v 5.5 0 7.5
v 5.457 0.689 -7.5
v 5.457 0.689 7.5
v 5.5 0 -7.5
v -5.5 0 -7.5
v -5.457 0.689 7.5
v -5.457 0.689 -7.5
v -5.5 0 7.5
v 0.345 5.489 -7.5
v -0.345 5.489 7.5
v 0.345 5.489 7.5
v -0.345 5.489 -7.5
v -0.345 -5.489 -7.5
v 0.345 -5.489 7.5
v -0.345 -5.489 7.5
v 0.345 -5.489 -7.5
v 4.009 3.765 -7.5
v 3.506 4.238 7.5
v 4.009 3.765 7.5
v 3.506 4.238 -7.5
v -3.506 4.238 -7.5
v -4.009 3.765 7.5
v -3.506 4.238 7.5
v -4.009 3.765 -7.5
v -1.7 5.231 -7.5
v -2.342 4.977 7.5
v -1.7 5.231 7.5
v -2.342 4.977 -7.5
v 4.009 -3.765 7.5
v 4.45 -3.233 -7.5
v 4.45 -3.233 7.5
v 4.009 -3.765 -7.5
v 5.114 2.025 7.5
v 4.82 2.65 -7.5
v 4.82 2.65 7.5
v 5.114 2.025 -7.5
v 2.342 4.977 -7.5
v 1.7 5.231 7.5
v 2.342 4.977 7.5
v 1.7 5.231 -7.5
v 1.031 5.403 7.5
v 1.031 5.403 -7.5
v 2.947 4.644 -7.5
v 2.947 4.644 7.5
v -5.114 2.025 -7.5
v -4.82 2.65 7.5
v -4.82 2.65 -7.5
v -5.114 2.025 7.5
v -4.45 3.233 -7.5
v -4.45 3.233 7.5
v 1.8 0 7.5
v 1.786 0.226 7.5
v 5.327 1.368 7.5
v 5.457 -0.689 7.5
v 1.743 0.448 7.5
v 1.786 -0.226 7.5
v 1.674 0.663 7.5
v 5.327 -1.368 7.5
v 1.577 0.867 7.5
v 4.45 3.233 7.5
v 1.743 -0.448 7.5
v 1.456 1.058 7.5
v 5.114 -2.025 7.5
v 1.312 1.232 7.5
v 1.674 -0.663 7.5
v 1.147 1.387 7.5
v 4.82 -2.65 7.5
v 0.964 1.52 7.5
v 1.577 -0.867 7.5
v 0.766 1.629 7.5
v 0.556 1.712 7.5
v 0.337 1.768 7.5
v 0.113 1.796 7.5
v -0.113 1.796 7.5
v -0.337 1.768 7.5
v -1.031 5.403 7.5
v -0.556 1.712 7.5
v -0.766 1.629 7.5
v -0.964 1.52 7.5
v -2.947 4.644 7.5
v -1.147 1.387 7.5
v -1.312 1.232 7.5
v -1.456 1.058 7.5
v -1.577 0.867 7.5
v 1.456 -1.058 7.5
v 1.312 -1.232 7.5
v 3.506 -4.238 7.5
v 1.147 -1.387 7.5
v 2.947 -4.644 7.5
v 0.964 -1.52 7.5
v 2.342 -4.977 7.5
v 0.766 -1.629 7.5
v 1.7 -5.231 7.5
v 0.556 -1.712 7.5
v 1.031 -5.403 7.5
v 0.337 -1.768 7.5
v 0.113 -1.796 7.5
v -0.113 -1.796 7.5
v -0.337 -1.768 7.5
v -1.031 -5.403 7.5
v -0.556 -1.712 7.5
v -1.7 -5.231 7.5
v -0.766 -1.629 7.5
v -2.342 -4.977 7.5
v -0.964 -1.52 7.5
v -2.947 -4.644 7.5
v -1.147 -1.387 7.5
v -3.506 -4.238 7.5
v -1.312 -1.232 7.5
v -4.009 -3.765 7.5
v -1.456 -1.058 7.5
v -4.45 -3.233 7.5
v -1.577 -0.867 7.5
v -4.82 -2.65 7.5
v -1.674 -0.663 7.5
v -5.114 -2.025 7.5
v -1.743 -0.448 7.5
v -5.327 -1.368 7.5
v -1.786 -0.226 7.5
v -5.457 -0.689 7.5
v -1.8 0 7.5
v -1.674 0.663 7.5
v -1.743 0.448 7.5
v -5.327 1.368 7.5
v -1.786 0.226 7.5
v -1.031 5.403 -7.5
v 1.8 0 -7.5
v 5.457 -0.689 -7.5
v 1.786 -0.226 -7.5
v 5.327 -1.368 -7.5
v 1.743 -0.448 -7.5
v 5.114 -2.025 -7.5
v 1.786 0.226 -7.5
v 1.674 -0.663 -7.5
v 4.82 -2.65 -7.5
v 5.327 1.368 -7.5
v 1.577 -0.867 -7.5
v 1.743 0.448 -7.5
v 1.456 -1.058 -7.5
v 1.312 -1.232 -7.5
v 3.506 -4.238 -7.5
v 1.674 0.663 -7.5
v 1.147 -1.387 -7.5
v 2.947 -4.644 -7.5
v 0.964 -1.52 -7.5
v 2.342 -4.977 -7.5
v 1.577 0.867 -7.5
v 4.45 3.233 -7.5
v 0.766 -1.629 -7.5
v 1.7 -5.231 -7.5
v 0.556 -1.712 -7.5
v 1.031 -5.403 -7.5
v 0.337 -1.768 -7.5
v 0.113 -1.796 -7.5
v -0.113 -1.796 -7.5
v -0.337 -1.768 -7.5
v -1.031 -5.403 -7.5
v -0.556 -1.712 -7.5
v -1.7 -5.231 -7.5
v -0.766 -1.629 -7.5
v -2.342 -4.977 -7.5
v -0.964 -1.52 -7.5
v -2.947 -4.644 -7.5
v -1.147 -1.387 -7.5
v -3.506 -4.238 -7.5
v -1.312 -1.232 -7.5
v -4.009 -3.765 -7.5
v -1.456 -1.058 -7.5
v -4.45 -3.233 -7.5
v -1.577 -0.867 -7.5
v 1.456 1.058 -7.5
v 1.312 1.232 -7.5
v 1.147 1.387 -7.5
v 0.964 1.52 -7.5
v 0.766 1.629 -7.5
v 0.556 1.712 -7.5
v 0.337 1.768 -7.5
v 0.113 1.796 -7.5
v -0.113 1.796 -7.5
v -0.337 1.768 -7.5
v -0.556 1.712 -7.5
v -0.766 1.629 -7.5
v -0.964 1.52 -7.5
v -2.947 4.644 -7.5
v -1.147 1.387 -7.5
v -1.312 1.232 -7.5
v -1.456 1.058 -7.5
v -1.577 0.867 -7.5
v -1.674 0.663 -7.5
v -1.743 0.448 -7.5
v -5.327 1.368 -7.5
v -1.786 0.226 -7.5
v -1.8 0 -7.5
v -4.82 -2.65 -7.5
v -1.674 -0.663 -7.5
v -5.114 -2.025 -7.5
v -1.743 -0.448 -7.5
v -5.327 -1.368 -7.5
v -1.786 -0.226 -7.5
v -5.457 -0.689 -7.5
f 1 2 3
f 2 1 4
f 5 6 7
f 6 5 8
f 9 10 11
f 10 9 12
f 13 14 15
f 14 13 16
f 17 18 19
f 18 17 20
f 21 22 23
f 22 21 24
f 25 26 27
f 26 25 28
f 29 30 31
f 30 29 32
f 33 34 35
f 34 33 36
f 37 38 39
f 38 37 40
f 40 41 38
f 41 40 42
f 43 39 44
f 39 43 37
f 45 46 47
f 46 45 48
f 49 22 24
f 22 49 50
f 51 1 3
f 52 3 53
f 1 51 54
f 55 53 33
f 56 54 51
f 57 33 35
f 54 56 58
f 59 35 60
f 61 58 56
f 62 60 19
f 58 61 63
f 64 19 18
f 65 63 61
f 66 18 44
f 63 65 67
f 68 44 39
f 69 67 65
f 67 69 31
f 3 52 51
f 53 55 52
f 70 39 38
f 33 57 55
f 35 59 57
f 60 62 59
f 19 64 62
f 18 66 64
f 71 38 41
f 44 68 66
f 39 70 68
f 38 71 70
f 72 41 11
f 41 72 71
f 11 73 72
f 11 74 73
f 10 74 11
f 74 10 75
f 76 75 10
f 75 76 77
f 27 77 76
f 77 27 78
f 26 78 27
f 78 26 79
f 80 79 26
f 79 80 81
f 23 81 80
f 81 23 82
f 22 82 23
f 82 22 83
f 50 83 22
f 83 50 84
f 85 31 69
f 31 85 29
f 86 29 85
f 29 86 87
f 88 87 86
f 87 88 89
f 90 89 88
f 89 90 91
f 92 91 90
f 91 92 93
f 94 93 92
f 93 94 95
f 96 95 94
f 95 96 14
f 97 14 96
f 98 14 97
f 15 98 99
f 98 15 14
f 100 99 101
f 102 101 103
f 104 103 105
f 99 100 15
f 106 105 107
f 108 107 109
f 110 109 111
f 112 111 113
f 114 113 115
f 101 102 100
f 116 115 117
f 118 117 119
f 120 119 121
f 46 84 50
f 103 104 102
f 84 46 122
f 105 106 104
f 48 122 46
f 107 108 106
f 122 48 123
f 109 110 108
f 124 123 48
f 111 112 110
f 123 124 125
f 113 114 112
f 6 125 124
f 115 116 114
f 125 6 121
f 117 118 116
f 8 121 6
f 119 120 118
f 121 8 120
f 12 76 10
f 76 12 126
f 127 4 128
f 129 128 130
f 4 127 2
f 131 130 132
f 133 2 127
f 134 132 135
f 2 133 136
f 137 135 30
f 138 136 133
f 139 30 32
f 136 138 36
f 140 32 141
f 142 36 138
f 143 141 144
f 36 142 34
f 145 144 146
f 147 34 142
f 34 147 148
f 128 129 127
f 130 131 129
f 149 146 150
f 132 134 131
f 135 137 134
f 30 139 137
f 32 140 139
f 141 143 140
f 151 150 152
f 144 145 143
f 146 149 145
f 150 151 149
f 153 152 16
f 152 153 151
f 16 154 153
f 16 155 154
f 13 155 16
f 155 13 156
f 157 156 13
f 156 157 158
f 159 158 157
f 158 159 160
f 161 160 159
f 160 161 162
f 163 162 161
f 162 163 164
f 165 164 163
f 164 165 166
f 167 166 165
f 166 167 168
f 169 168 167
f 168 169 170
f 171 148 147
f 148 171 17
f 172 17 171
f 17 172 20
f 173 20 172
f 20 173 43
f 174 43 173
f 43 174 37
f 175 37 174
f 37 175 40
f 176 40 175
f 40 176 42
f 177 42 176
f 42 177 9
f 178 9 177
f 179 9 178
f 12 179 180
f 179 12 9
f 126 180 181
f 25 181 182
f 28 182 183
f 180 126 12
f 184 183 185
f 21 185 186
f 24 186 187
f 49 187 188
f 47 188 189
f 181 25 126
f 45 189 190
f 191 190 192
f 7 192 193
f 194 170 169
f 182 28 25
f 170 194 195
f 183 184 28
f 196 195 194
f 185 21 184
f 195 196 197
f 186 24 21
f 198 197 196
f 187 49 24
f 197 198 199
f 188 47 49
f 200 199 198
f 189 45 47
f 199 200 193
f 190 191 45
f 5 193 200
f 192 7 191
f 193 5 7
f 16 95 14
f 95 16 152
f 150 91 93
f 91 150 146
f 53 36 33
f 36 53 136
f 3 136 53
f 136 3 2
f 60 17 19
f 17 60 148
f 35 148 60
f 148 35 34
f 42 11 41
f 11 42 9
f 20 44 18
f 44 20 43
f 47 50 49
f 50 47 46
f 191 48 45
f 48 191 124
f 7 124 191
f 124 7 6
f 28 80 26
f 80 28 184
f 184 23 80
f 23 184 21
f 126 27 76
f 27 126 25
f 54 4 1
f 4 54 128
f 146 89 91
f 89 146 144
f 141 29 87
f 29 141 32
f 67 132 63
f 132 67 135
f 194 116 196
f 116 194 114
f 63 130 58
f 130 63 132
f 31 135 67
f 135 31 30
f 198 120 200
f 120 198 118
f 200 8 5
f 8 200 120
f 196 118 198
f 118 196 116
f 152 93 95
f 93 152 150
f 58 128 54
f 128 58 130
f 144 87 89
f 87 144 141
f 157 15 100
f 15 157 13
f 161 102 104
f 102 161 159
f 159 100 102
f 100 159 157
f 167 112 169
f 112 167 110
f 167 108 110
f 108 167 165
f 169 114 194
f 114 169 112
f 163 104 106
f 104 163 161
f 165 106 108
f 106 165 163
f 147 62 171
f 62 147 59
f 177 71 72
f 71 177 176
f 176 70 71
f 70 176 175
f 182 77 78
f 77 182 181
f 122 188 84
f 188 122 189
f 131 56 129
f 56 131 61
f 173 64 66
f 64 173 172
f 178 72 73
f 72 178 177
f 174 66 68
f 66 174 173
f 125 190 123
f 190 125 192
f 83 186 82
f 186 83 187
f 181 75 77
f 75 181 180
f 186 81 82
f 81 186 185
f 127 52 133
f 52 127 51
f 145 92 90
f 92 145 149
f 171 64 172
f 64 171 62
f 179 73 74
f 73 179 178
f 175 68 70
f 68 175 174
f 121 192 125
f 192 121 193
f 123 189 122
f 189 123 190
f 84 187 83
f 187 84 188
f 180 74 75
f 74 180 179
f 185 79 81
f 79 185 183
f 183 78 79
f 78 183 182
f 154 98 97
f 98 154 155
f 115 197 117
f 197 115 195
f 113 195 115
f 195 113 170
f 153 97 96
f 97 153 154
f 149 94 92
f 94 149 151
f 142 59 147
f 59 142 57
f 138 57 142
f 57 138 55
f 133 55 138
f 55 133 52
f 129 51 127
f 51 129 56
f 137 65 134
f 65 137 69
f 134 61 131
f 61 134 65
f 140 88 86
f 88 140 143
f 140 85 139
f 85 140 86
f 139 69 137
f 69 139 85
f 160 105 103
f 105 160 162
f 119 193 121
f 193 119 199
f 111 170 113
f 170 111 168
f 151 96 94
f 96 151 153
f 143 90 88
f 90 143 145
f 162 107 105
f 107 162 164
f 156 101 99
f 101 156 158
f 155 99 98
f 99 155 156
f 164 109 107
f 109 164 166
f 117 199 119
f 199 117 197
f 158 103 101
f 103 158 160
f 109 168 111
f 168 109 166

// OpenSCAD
$fn = 50;


difference() {
	union() {
		translate(v = [0, 0, -7.5000000000]) {
			cylinder(h = 15, r = 5.5000000000);
		}
	}
	union() {
		translate(v = [0, 0, -100.0000000000]) {
			cylinder(h = 200, r = 1.8000000000);
		}
	}
}
